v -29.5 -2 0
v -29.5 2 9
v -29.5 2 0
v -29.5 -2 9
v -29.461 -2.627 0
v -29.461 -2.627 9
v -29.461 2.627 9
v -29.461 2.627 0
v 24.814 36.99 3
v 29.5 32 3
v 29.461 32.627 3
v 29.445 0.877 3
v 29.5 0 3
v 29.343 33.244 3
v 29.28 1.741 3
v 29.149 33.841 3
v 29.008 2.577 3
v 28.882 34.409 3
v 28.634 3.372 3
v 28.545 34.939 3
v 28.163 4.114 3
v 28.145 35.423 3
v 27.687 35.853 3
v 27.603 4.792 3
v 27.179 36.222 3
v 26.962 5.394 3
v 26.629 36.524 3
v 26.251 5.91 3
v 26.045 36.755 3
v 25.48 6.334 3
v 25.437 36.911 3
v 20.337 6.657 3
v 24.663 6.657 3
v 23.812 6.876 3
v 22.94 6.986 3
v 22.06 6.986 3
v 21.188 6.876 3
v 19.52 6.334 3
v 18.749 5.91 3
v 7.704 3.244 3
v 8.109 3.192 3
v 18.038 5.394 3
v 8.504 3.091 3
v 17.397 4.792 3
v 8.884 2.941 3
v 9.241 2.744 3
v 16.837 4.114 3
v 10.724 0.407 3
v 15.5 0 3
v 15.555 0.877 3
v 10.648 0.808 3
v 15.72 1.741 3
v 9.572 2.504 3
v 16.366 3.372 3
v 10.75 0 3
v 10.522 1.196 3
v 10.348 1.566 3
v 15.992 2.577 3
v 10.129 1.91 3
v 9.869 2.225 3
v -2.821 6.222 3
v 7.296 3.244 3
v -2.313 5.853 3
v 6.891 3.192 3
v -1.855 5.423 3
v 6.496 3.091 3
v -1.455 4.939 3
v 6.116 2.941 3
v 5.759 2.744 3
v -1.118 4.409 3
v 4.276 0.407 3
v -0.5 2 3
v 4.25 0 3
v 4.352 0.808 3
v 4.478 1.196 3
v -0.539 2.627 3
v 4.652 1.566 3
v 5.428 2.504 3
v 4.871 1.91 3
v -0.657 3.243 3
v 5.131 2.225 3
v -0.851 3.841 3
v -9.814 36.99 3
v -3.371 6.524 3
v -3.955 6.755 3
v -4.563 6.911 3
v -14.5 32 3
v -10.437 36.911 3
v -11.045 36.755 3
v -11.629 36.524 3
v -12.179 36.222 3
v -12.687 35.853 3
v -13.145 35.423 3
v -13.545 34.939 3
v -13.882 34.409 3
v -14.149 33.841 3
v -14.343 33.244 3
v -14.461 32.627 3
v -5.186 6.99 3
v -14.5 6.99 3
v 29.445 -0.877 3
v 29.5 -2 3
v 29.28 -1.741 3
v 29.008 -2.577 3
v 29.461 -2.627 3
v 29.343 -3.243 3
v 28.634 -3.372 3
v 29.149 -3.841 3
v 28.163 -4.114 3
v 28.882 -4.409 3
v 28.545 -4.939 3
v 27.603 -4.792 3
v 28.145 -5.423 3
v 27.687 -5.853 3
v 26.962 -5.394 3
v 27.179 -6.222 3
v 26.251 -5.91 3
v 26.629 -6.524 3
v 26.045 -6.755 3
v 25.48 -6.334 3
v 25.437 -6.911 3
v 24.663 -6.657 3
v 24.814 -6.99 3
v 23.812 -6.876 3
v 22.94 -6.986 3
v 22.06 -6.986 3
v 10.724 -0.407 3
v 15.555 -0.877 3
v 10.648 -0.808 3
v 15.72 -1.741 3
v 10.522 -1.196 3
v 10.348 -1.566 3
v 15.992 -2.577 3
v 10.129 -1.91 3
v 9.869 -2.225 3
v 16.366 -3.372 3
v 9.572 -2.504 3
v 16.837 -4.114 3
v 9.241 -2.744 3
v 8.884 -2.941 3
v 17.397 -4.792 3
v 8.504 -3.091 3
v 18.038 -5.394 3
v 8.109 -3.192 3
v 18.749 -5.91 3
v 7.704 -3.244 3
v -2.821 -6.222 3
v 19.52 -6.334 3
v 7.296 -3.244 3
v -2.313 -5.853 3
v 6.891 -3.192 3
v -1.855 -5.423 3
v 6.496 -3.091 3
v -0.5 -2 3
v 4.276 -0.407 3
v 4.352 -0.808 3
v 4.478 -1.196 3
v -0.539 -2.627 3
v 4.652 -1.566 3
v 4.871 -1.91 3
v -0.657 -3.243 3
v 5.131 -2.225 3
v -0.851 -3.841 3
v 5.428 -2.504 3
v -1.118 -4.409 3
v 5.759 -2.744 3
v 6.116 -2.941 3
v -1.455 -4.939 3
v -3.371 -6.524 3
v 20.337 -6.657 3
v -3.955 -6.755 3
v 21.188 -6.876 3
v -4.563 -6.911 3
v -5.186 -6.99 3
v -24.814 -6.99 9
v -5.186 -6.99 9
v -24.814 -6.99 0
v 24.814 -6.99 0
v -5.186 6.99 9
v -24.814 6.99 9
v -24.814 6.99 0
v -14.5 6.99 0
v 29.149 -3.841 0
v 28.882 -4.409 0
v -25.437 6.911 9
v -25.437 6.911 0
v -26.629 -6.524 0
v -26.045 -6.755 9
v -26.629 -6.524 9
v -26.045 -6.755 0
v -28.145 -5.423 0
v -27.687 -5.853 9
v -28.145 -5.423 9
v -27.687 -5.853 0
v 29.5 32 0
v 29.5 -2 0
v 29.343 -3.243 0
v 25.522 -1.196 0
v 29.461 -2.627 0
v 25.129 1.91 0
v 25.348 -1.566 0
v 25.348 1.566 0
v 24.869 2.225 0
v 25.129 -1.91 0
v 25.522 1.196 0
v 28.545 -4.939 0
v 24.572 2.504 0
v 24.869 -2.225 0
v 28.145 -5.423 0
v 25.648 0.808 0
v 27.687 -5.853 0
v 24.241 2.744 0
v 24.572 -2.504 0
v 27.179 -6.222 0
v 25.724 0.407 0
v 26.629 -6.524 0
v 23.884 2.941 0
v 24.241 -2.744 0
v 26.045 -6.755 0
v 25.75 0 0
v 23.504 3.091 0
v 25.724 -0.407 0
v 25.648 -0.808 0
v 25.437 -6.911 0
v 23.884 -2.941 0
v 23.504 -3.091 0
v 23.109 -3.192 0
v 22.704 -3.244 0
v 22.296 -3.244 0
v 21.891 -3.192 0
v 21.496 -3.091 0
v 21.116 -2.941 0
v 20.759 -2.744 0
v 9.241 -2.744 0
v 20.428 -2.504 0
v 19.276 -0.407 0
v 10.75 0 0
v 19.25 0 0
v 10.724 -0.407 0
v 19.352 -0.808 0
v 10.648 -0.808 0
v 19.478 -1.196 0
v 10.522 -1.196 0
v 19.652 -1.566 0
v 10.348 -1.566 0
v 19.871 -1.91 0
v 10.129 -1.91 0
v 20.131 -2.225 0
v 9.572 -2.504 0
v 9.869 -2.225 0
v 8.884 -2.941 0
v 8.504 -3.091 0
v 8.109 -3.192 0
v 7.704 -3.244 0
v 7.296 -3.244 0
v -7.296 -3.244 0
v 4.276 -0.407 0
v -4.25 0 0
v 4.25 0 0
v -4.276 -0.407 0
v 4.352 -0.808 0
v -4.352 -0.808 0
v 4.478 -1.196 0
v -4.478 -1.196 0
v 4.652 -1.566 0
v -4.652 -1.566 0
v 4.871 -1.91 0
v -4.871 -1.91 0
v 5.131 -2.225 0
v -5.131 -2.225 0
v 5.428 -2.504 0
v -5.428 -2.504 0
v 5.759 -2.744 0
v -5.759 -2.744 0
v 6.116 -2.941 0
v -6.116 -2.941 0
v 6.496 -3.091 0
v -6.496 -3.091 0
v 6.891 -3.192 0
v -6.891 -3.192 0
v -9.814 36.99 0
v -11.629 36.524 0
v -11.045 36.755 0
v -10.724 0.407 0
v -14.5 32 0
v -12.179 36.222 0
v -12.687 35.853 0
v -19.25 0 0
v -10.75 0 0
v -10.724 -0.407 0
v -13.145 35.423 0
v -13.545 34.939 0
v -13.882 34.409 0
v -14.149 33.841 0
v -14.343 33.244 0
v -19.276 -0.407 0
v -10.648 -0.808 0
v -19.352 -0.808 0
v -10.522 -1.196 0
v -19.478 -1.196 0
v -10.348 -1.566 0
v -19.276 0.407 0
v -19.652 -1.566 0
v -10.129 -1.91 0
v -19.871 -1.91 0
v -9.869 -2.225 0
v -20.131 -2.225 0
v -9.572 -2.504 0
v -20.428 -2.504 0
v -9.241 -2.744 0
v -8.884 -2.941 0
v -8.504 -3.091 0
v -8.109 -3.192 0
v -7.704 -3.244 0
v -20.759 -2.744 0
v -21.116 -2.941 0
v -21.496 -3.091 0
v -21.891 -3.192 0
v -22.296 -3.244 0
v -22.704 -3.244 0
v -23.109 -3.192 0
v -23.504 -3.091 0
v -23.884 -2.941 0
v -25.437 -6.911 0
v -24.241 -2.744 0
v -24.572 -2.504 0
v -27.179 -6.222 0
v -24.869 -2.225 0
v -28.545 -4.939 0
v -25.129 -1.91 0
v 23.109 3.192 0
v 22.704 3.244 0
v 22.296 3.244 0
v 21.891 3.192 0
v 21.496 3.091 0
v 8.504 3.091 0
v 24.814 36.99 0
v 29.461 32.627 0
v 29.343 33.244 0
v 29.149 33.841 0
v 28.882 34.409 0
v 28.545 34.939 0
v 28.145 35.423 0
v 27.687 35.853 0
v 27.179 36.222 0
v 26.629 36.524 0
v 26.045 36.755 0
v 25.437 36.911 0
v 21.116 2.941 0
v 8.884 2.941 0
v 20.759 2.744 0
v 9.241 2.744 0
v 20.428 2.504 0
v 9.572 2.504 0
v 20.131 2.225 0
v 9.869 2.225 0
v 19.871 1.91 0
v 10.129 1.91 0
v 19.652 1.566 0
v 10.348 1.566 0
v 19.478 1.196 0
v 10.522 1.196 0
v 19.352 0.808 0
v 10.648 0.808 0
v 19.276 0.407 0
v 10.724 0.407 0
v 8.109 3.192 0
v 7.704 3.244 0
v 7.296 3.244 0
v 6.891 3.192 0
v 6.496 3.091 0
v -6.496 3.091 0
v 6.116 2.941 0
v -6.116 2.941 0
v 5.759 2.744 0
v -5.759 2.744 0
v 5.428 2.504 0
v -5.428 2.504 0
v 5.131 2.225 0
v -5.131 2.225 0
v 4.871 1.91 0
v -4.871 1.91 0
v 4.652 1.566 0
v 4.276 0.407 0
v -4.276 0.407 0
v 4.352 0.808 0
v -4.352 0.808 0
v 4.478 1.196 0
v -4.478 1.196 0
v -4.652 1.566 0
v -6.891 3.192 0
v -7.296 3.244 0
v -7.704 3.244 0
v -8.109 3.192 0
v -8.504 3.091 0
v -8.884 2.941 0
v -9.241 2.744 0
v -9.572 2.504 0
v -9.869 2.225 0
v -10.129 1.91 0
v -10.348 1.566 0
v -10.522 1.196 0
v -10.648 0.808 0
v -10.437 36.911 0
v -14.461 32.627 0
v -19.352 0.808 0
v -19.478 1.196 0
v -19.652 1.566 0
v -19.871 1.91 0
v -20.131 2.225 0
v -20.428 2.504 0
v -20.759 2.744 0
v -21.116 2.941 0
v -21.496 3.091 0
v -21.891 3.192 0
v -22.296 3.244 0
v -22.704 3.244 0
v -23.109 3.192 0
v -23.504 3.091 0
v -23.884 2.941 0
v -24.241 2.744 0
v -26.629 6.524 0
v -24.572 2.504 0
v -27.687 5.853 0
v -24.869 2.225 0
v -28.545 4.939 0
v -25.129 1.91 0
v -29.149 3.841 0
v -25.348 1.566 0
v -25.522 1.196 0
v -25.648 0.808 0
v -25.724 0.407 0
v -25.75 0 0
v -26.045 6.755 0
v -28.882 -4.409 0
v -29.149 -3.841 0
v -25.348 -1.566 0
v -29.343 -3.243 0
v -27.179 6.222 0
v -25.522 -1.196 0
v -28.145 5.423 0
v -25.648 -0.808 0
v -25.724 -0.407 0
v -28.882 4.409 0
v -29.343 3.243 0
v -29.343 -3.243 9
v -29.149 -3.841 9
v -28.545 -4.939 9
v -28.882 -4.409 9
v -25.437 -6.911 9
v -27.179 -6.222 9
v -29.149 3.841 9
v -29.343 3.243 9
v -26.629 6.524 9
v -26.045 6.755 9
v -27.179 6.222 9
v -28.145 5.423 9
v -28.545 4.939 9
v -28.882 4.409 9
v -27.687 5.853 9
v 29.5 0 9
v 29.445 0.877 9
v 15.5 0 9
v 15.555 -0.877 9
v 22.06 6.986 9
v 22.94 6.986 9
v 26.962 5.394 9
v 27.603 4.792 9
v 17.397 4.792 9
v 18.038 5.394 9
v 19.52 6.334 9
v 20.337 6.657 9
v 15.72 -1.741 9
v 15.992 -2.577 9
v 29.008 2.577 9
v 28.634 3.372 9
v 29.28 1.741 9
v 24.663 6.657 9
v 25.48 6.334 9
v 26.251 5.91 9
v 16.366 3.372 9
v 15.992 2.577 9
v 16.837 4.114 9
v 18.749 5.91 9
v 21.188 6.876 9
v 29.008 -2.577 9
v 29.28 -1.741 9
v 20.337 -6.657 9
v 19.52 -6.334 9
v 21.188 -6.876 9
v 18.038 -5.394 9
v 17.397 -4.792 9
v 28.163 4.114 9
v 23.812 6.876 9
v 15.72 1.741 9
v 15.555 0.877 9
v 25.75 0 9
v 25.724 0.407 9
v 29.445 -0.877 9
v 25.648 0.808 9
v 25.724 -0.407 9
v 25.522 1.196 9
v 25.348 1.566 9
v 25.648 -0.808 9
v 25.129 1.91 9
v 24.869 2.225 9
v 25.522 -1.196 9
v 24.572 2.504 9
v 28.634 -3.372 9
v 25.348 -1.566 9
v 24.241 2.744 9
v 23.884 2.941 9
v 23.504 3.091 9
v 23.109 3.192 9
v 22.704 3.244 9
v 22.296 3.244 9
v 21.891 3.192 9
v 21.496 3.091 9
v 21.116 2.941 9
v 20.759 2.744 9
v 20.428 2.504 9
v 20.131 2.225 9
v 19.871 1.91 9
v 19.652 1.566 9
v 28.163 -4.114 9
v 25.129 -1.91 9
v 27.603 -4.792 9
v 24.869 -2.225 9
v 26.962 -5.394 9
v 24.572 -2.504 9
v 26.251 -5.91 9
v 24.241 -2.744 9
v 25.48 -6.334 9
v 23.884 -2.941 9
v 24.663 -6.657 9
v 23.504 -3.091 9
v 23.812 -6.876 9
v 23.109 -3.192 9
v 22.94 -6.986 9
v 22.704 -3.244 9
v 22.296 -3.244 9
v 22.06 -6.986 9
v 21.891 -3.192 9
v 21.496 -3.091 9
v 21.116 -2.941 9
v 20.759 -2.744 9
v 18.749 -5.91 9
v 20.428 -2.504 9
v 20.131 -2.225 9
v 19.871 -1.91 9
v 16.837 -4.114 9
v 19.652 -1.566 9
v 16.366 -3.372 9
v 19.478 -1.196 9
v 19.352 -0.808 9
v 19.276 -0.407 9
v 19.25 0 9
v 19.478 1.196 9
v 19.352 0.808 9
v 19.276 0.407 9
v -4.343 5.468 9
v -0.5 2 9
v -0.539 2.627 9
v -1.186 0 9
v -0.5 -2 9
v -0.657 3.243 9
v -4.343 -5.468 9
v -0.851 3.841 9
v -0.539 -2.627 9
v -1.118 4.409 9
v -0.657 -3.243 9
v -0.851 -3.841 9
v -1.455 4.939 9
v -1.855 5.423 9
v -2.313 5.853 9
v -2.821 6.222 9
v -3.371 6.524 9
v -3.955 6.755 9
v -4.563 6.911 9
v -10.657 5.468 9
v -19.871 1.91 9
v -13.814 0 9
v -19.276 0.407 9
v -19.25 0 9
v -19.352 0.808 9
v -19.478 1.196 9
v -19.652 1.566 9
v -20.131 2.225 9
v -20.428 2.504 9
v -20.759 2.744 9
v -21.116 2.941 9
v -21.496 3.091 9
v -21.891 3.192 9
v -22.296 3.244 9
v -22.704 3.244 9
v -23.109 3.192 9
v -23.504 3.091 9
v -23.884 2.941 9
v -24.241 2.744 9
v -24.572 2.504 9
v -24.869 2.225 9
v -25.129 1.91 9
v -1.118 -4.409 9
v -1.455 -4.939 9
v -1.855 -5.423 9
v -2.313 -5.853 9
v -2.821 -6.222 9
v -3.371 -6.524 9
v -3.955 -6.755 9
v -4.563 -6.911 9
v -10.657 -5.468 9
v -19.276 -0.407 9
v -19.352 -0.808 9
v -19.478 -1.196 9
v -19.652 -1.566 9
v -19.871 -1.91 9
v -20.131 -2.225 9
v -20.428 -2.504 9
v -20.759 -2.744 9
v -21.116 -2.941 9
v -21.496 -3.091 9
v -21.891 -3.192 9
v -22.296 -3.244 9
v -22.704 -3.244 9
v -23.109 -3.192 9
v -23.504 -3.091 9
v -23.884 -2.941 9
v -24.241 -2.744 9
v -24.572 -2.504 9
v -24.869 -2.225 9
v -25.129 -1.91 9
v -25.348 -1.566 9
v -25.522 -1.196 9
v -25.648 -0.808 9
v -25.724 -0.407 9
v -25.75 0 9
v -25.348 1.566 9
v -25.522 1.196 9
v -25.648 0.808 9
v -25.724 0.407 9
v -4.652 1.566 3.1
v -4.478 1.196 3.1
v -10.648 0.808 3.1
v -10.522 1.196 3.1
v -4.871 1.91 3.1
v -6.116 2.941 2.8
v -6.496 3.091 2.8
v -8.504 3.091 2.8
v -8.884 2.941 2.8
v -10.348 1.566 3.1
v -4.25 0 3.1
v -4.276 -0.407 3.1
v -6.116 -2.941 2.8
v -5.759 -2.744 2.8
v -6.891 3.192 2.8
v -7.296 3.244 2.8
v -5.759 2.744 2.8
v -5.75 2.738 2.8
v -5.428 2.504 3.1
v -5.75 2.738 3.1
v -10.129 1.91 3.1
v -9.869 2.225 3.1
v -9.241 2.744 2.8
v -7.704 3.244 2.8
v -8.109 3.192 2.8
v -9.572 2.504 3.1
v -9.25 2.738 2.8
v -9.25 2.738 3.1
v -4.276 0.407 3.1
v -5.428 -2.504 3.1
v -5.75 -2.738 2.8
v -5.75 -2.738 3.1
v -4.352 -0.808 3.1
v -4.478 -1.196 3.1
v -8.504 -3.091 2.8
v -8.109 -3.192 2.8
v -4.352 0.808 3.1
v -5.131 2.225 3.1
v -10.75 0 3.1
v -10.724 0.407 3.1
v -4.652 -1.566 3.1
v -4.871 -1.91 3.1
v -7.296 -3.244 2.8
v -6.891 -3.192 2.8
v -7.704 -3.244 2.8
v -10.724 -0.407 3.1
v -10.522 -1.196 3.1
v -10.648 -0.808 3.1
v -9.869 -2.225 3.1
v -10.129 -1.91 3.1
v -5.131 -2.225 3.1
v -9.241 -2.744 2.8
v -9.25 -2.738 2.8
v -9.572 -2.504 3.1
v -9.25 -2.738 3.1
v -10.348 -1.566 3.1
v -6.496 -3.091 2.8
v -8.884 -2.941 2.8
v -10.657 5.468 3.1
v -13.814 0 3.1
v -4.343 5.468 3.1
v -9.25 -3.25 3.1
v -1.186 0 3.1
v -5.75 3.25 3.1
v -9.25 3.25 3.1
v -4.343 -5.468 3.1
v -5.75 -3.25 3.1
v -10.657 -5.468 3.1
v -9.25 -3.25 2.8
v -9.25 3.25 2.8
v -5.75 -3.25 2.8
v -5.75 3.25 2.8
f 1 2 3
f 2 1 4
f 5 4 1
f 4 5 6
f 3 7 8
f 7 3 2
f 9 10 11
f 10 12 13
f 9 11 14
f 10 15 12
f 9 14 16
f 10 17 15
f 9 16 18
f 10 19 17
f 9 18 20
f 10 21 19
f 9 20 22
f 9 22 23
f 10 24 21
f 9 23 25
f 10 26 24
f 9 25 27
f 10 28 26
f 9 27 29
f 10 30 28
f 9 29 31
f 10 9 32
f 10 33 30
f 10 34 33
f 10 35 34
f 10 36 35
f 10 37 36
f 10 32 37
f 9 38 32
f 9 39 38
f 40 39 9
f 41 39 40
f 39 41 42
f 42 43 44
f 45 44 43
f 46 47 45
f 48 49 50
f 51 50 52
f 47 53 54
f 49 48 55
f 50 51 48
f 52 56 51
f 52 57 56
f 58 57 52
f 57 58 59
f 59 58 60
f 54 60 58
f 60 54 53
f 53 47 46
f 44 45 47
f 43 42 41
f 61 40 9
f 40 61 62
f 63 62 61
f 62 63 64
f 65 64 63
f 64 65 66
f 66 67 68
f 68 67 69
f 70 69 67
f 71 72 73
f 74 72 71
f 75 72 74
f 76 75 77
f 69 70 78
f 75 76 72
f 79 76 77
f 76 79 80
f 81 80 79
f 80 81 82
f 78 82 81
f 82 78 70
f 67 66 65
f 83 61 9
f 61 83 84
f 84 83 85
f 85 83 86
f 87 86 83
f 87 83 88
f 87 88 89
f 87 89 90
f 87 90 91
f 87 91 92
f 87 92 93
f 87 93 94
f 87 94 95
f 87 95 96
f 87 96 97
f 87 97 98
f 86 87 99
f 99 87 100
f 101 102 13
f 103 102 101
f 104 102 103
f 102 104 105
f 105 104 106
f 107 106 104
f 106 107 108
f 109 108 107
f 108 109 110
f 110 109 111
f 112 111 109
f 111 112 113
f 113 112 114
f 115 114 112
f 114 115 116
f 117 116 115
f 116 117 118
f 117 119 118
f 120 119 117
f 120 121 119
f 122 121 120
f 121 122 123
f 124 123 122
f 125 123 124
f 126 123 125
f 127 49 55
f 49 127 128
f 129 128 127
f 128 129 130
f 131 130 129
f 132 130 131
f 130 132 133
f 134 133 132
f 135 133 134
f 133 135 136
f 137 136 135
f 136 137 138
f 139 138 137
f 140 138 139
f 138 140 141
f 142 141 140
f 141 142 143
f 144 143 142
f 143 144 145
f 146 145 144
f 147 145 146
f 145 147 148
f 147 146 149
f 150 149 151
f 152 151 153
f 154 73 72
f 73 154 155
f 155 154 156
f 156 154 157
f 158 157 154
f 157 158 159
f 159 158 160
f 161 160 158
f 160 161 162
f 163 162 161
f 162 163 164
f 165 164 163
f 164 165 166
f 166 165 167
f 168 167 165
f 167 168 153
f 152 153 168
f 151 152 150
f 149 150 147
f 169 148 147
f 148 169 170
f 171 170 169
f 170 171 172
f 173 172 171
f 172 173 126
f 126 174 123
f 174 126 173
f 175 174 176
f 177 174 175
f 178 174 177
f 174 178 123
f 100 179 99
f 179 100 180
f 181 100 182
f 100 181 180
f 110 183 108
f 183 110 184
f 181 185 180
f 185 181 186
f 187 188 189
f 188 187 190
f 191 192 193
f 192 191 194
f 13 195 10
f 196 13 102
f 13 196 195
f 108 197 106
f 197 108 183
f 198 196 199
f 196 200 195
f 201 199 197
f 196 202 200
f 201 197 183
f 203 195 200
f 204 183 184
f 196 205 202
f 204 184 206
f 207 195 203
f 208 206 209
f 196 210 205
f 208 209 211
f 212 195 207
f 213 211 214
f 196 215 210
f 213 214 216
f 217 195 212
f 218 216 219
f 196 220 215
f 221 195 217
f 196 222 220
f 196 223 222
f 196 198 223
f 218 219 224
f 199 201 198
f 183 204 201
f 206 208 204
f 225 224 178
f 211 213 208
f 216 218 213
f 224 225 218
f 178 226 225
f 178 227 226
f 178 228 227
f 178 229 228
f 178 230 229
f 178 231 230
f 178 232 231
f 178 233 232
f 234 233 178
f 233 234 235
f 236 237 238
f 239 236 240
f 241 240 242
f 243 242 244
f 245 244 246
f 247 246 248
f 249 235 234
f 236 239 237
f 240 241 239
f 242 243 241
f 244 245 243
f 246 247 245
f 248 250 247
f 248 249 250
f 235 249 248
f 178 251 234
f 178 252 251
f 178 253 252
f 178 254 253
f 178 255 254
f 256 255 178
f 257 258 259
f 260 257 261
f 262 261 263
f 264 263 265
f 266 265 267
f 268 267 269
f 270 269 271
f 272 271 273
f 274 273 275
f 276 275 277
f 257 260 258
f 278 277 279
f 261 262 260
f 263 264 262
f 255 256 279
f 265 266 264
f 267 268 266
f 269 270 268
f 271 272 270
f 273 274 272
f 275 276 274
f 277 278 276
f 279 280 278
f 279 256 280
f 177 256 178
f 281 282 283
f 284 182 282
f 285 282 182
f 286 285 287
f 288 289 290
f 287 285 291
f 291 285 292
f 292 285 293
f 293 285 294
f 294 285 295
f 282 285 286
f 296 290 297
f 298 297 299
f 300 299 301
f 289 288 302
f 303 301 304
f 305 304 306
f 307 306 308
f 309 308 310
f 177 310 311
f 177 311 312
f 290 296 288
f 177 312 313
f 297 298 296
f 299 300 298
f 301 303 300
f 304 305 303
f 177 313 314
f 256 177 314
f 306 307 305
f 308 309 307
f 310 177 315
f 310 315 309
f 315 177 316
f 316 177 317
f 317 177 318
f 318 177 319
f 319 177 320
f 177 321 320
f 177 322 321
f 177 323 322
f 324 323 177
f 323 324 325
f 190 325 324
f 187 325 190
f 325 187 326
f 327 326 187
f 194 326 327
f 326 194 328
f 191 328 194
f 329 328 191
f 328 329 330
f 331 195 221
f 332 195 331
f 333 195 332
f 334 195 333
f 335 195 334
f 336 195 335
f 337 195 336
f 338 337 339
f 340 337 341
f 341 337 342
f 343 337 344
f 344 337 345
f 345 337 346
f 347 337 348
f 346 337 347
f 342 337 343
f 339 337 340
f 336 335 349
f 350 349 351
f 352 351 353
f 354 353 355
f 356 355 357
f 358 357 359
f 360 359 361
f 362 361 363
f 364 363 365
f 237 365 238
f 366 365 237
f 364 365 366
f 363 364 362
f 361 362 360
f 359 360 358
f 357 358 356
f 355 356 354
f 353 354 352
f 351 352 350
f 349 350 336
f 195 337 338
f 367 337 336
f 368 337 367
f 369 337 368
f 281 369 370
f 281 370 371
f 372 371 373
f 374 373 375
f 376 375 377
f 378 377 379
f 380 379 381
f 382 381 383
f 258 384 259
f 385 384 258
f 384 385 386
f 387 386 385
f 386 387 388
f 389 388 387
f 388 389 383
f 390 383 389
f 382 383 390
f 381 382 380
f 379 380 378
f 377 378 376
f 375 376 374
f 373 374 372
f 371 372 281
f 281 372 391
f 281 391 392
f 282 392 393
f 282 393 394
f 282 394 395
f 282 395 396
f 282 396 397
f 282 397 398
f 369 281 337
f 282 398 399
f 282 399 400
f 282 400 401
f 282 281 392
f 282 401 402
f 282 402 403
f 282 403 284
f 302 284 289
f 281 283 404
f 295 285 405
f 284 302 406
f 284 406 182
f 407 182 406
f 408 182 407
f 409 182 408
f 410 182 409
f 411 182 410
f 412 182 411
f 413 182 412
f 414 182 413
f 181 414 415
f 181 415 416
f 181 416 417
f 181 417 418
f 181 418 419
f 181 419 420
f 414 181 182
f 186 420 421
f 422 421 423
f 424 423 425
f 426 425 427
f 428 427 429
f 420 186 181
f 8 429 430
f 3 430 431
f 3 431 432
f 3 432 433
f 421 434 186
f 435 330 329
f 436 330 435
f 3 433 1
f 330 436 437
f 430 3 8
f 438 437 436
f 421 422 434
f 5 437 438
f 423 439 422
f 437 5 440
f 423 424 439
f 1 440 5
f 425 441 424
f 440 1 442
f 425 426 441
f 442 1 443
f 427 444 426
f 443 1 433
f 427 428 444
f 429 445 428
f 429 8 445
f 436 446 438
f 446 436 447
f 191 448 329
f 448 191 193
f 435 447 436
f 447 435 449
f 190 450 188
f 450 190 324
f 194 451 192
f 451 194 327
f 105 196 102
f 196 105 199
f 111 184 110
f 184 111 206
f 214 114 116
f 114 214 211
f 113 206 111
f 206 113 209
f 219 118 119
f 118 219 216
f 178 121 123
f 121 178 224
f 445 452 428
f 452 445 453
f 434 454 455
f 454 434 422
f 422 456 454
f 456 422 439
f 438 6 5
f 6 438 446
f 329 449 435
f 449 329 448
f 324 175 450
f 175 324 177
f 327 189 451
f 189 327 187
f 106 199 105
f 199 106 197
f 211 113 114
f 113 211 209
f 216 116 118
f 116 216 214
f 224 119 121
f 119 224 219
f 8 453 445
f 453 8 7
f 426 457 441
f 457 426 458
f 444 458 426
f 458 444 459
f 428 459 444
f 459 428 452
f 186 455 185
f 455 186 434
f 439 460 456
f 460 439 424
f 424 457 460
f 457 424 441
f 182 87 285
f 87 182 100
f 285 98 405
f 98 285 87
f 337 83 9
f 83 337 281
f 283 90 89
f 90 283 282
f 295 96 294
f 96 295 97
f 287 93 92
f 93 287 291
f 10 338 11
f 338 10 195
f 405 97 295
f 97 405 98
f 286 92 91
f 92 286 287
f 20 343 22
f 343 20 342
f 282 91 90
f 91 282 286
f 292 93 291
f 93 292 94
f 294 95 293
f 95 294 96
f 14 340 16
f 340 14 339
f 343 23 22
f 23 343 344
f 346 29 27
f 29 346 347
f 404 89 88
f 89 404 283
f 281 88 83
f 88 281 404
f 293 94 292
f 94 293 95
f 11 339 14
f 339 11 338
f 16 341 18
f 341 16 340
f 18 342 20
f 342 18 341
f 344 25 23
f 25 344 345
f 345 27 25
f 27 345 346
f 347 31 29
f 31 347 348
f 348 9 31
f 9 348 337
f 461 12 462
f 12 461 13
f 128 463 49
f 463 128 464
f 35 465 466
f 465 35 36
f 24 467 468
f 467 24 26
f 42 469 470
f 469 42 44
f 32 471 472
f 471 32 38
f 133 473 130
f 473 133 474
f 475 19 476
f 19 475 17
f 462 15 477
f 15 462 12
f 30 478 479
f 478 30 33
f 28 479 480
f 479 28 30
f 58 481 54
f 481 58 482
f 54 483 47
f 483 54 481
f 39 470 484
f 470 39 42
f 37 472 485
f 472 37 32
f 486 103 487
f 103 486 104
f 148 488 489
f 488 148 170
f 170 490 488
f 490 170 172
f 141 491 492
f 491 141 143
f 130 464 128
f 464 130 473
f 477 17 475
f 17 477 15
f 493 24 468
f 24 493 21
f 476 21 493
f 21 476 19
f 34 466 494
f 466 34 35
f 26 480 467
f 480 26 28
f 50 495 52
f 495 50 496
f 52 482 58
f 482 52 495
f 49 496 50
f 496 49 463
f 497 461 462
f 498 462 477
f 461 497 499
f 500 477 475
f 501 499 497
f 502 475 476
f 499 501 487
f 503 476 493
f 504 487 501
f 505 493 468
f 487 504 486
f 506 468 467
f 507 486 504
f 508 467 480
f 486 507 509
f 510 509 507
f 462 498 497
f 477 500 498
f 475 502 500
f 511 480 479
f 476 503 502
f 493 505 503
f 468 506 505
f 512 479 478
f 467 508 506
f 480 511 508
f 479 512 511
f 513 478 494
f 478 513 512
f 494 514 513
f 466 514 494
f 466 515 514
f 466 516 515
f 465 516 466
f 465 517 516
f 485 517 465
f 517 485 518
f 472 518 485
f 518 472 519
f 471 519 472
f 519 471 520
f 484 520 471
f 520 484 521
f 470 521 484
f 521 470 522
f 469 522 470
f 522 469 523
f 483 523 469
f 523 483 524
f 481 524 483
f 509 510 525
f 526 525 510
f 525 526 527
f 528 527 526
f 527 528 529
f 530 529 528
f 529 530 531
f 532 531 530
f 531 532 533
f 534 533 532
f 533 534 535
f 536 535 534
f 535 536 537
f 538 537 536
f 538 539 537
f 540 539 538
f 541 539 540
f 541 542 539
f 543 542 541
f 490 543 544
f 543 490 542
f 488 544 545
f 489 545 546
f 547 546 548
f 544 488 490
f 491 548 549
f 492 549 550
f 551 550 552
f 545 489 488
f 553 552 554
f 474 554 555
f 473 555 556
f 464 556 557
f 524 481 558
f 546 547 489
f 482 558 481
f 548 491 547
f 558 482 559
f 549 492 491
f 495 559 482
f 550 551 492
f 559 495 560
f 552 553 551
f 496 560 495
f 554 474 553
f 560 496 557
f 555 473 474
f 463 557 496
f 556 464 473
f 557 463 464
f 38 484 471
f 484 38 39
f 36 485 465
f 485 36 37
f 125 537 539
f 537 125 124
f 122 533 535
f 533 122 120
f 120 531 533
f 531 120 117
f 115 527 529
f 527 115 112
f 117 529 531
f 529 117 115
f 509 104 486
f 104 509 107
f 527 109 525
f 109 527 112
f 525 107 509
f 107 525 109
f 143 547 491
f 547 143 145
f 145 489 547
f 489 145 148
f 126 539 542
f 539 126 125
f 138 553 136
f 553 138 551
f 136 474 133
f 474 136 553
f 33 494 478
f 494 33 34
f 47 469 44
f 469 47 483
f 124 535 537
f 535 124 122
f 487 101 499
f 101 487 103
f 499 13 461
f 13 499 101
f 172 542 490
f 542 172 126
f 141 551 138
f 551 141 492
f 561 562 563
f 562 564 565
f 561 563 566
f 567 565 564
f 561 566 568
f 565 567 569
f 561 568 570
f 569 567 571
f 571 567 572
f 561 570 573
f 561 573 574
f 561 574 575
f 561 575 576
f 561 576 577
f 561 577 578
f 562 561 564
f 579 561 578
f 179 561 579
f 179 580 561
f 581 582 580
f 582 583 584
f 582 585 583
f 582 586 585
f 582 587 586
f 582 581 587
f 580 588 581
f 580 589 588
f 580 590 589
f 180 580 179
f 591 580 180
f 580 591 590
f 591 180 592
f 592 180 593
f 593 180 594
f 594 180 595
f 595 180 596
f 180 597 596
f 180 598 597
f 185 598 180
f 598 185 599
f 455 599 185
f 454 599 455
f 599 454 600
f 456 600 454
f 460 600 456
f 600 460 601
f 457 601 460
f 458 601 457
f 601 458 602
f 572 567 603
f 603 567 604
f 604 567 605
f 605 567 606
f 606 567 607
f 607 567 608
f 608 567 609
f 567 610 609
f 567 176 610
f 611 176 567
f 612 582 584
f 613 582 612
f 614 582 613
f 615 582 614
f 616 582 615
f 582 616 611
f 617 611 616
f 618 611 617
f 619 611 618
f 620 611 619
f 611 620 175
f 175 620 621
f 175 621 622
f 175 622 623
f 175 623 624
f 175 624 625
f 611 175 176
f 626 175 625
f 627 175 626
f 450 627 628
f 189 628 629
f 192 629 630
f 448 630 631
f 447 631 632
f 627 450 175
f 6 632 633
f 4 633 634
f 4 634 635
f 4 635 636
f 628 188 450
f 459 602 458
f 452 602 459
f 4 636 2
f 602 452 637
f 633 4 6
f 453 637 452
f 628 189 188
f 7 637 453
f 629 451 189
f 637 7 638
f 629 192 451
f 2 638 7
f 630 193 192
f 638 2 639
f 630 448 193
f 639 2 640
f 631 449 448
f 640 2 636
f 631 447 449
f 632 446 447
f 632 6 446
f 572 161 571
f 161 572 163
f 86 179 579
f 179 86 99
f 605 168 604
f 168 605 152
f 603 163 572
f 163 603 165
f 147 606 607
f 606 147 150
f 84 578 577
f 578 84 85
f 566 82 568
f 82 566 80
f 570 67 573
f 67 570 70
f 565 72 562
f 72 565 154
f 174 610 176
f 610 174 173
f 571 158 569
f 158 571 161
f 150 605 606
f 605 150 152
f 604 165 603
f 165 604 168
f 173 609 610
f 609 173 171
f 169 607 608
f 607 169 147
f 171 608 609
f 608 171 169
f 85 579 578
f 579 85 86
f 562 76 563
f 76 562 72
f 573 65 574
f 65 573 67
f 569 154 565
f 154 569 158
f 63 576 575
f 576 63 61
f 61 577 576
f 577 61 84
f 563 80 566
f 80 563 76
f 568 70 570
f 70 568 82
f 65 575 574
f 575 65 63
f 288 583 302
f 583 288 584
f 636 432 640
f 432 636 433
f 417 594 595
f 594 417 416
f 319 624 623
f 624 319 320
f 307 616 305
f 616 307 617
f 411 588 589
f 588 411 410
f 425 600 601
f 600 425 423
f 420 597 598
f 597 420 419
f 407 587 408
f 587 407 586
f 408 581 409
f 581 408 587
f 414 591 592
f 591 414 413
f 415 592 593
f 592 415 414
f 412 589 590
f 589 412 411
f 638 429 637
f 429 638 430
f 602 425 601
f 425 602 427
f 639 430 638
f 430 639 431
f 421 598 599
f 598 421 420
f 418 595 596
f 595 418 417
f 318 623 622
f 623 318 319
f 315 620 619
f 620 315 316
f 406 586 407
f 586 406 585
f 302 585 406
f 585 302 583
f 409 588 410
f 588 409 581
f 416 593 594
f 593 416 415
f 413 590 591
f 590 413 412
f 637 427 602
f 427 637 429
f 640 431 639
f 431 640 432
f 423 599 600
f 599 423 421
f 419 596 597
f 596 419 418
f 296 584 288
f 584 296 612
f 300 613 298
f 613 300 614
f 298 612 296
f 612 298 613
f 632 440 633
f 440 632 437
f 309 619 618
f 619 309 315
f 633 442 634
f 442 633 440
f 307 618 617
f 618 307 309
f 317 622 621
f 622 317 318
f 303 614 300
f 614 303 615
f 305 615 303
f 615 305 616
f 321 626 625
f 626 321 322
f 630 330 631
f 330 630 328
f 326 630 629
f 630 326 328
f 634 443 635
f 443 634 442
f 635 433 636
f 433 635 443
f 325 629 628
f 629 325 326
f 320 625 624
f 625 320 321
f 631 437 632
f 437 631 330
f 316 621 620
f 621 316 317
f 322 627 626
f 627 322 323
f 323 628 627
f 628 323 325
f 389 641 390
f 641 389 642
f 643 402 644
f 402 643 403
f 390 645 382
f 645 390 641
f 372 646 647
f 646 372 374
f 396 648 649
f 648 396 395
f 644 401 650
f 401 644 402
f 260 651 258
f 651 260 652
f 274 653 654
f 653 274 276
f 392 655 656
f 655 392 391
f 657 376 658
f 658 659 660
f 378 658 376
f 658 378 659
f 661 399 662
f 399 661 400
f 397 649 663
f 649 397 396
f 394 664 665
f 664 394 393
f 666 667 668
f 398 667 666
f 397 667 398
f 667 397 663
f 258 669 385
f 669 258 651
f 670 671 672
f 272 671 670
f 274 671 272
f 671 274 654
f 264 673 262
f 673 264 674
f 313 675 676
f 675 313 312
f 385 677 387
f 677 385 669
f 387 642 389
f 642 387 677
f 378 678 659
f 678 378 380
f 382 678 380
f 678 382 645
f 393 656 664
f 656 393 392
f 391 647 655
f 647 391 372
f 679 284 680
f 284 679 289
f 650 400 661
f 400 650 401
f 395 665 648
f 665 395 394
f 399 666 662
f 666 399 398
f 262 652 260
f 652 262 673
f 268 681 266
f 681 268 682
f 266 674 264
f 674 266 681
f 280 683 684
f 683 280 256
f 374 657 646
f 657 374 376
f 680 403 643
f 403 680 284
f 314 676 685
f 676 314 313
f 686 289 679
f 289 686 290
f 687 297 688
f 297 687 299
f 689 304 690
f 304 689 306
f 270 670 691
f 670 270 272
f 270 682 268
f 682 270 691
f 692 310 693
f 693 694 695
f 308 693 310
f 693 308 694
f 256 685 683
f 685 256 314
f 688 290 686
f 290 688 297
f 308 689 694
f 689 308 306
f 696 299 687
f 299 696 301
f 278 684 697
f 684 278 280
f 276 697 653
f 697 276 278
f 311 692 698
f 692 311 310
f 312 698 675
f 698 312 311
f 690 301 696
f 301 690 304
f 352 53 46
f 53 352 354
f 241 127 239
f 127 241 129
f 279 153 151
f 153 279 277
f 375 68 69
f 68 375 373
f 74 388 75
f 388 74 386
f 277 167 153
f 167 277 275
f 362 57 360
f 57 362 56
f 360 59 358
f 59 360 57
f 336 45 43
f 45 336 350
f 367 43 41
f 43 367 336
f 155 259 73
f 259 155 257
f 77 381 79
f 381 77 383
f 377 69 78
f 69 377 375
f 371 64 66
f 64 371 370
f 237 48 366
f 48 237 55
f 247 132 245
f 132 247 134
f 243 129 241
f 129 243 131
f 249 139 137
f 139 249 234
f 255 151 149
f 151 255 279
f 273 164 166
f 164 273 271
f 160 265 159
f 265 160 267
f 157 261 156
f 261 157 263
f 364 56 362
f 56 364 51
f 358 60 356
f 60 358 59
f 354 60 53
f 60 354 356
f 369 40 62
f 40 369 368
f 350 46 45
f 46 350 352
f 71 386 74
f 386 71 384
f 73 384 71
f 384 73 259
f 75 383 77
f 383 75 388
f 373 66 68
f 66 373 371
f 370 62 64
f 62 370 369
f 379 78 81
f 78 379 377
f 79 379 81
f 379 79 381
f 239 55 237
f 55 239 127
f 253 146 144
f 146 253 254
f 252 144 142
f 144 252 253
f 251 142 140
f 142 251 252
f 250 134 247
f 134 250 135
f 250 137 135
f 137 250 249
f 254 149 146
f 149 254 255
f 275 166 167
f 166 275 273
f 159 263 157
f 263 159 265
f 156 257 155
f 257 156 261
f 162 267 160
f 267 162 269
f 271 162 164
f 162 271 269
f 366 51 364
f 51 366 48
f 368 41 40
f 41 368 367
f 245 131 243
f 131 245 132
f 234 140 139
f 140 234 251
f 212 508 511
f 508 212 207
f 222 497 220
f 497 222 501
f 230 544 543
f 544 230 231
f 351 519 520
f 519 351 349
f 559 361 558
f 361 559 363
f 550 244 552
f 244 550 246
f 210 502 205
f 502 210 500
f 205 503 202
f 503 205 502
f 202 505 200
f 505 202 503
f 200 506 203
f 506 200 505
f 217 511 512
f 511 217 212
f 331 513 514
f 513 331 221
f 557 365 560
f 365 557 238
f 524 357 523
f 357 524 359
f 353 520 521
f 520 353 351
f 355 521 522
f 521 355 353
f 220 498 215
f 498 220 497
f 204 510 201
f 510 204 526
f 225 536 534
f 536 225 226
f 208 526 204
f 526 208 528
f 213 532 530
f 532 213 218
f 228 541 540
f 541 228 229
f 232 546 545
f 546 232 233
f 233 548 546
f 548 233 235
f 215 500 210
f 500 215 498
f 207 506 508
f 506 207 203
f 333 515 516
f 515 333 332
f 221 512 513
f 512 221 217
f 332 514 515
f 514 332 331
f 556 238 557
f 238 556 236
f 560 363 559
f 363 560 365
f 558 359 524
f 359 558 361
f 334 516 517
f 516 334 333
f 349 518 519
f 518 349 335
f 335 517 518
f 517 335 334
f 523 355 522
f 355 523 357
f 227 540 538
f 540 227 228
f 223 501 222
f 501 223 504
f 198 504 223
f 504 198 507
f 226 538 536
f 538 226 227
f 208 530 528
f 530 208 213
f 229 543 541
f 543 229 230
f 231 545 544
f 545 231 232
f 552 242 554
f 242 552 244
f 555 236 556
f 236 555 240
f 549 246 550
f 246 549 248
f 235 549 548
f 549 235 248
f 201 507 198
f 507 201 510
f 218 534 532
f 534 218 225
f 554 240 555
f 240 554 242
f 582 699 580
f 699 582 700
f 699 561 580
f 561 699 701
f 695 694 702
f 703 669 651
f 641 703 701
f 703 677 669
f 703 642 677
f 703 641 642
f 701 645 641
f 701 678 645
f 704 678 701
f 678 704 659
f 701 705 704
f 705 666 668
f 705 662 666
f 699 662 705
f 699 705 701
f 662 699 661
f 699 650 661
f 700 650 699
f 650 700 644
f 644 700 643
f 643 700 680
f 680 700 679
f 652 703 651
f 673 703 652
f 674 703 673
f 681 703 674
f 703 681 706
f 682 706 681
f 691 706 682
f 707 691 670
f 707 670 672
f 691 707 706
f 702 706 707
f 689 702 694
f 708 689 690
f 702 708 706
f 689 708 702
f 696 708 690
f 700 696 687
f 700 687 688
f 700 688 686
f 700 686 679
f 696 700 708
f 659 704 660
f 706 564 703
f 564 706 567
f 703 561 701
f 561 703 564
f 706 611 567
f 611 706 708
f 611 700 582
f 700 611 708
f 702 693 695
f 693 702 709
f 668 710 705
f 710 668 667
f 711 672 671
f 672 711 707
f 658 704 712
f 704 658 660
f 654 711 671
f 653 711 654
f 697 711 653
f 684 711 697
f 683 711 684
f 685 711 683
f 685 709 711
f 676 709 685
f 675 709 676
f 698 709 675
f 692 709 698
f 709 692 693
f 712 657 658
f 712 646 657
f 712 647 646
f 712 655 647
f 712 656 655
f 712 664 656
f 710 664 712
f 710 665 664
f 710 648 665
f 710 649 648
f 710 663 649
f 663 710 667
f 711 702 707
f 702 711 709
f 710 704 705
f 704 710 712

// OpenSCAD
$fn = 50;


difference() {
	union() {
		translate(v = [0, 0, 0]) {
			rotate(a = [0, 0, 0]) {
				hull() {
					translate(v = [-24.5000000000, 2.0000000000, 0]) {
						rotate(a = [0, 0, 0]) {
							translate(v = [0, 0, 0]) {
								rotate(a = [0, 0, 0]) {
									cylinder(h = 3, r = 5);
								}
							}
						}
					}
					translate(v = [24.5000000000, 2.0000000000, 0]) {
						rotate(a = [0, 0, 0]) {
							translate(v = [0, 0, 0]) {
								rotate(a = [0, 0, 0]) {
									cylinder(h = 3, r = 5);
								}
							}
						}
					}
					translate(v = [-24.5000000000, -2.0000000000, 0]) {
						rotate(a = [0, 0, 0]) {
							translate(v = [0, 0, 0]) {
								rotate(a = [0, 0, 0]) {
									cylinder(h = 3, r = 5);
								}
							}
						}
					}
					translate(v = [24.5000000000, -2.0000000000, 0]) {
						rotate(a = [0, 0, 0]) {
							translate(v = [0, 0, 0]) {
								rotate(a = [0, 0, 0]) {
									cylinder(h = 3, r = 5);
								}
							}
						}
					}
				}
			}
		}
		translate(v = [7.5000000000, 15.0000000000, 0]) {
			rotate(a = [0, 0, 0]) {
				hull() {
					translate(v = [-17.0000000000, 17.0000000000, 0]) {
						rotate(a = [0, 0, 0]) {
							translate(v = [0, 0, 0]) {
								rotate(a = [0, 0, 0]) {
									cylinder(h = 3, r = 5);
								}
							}
						}
					}
					translate(v = [17.0000000000, 17.0000000000, 0]) {
						rotate(a = [0, 0, 0]) {
							translate(v = [0, 0, 0]) {
								rotate(a = [0, 0, 0]) {
									cylinder(h = 3, r = 5);
								}
							}
						}
					}
					translate(v = [-17.0000000000, -17.0000000000, 0]) {
						rotate(a = [0, 0, 0]) {
							translate(v = [0, 0, 0]) {
								rotate(a = [0, 0, 0]) {
									cylinder(h = 3, r = 5);
								}
							}
						}
					}
					translate(v = [17.0000000000, -17.0000000000, 0]) {
						rotate(a = [0, 0, 0]) {
							translate(v = [0, 0, 0]) {
								rotate(a = [0, 0, 0]) {
									cylinder(h = 3, r = 5);
								}
							}
						}
					}
				}
			}
		}
		translate(v = [22.5000000000, 0, 0]) {
			rotate(a = [0, 0, 0]) {
				cylinder(h = 9, r = 7.0000000000);
			}
		}
		translate(v = [-15.0000000000, 0, 0]) {
			rotate(a = [0, 0, 0]) {
				hull() {
					translate(v = [-9.5000000000, 2.0000000000, 0]) {
						rotate(a = [0, 0, 0]) {
							translate(v = [0, 0, 0]) {
								rotate(a = [0, 0, 0]) {
									cylinder(h = 9, r = 5);
								}
							}
						}
					}
					translate(v = [9.5000000000, 2.0000000000, 0]) {
						rotate(a = [0, 0, 0]) {
							translate(v = [0, 0, 0]) {
								rotate(a = [0, 0, 0]) {
									cylinder(h = 9, r = 5);
								}
							}
						}
					}
					translate(v = [-9.5000000000, -2.0000000000, 0]) {
						rotate(a = [0, 0, 0]) {
							translate(v = [0, 0, 0]) {
								rotate(a = [0, 0, 0]) {
									cylinder(h = 9, r = 5);
								}
							}
						}
					}
					translate(v = [9.5000000000, -2.0000000000, 0]) {
						rotate(a = [0, 0, 0]) {
							translate(v = [0, 0, 0]) {
								rotate(a = [0, 0, 0]) {
									cylinder(h = 9, r = 5);
								}
							}
						}
					}
				}
			}
		}
	}
	union() {
		translate(v = [-22.5000000000, 0.0000000000, 0]) {
			rotate(a = [0, 0, 0]) {
				translate(v = [0, 0, -50]) {
					rotate(a = [0, 0, 0]) {
						cylinder(h = 100, r = 3.2500000000);
					}
				}
			}
		}
		translate(v = [-7.5000000000, 0.0000000000, 0]) {
			rotate(a = [0, 0, 0]) {
				translate(v = [0, 0, -50]) {
					rotate(a = [0, 0, 0]) {
						cylinder(h = 100, r = 3.2500000000);
					}
				}
			}
		}
		translate(v = [7.5000000000, 0.0000000000, 0]) {
			rotate(a = [0, 0, 0]) {
				translate(v = [0, 0, -50]) {
					rotate(a = [0, 0, 0]) {
						cylinder(h = 100, r = 3.2500000000);
					}
				}
			}
		}
		translate(v = [22.5000000000, 0.0000000000, 0]) {
			rotate(a = [0, 0, 0]) {
				translate(v = [0, 0, -50]) {
					rotate(a = [0, 0, 0]) {
						cylinder(h = 100, r = 3.2500000000);
					}
				}
			}
		}
		translate(v = [-7.5000000000, 0, 3.1000000000]) {
			rotate(a = [0, 0, 0]) {
				#translate(v = [0, 0, 0]) {
					rotate(a = [0, 0, 0]) {
						linear_extrude(height = 5.9000000000) {
							polygon(points = [[6.3142500000, 0.0000000000], [3.1571250000, 5.4683009058], [-3.1571250000, 5.4683009058], [-6.3142500000, 0.0000000000], [-3.1571250000, -5.4683009058], [3.1571250000, -5.4683009058]]);
						}
					}
				}
			}
		}
		#translate(v = [-9.2500000000, -3.2500000000, 9.0000000000]) {
			rotate(a = [0, 0, 0]) {
				cube(size = [3.5000000000, 6.5000000000, 0.3000000000]);
			}
		}
		#translate(v = [-9.2500000000, -1.7500000000, 9.3000000000]) {
			rotate(a = [0, 0, 0]) {
				cube(size = [3.5000000000, 3.5000000000, 0.3000000000]);
			}
		}
		#translate(v = [-9.2500000000, -3.2500000000, 2.8000000000]) {
			rotate(a = [0, 0, 0]) {
				cube(size = [3.5000000000, 6.5000000000, 0.3000000000]);
			}
		}
		#translate(v = [-9.2500000000, -1.7500000000, 2.5000000000]) {
			rotate(a = [0, 0, 0]) {
				cube(size = [3.5000000000, 3.5000000000, 0.3000000000]);
			}
		}
	}
}
